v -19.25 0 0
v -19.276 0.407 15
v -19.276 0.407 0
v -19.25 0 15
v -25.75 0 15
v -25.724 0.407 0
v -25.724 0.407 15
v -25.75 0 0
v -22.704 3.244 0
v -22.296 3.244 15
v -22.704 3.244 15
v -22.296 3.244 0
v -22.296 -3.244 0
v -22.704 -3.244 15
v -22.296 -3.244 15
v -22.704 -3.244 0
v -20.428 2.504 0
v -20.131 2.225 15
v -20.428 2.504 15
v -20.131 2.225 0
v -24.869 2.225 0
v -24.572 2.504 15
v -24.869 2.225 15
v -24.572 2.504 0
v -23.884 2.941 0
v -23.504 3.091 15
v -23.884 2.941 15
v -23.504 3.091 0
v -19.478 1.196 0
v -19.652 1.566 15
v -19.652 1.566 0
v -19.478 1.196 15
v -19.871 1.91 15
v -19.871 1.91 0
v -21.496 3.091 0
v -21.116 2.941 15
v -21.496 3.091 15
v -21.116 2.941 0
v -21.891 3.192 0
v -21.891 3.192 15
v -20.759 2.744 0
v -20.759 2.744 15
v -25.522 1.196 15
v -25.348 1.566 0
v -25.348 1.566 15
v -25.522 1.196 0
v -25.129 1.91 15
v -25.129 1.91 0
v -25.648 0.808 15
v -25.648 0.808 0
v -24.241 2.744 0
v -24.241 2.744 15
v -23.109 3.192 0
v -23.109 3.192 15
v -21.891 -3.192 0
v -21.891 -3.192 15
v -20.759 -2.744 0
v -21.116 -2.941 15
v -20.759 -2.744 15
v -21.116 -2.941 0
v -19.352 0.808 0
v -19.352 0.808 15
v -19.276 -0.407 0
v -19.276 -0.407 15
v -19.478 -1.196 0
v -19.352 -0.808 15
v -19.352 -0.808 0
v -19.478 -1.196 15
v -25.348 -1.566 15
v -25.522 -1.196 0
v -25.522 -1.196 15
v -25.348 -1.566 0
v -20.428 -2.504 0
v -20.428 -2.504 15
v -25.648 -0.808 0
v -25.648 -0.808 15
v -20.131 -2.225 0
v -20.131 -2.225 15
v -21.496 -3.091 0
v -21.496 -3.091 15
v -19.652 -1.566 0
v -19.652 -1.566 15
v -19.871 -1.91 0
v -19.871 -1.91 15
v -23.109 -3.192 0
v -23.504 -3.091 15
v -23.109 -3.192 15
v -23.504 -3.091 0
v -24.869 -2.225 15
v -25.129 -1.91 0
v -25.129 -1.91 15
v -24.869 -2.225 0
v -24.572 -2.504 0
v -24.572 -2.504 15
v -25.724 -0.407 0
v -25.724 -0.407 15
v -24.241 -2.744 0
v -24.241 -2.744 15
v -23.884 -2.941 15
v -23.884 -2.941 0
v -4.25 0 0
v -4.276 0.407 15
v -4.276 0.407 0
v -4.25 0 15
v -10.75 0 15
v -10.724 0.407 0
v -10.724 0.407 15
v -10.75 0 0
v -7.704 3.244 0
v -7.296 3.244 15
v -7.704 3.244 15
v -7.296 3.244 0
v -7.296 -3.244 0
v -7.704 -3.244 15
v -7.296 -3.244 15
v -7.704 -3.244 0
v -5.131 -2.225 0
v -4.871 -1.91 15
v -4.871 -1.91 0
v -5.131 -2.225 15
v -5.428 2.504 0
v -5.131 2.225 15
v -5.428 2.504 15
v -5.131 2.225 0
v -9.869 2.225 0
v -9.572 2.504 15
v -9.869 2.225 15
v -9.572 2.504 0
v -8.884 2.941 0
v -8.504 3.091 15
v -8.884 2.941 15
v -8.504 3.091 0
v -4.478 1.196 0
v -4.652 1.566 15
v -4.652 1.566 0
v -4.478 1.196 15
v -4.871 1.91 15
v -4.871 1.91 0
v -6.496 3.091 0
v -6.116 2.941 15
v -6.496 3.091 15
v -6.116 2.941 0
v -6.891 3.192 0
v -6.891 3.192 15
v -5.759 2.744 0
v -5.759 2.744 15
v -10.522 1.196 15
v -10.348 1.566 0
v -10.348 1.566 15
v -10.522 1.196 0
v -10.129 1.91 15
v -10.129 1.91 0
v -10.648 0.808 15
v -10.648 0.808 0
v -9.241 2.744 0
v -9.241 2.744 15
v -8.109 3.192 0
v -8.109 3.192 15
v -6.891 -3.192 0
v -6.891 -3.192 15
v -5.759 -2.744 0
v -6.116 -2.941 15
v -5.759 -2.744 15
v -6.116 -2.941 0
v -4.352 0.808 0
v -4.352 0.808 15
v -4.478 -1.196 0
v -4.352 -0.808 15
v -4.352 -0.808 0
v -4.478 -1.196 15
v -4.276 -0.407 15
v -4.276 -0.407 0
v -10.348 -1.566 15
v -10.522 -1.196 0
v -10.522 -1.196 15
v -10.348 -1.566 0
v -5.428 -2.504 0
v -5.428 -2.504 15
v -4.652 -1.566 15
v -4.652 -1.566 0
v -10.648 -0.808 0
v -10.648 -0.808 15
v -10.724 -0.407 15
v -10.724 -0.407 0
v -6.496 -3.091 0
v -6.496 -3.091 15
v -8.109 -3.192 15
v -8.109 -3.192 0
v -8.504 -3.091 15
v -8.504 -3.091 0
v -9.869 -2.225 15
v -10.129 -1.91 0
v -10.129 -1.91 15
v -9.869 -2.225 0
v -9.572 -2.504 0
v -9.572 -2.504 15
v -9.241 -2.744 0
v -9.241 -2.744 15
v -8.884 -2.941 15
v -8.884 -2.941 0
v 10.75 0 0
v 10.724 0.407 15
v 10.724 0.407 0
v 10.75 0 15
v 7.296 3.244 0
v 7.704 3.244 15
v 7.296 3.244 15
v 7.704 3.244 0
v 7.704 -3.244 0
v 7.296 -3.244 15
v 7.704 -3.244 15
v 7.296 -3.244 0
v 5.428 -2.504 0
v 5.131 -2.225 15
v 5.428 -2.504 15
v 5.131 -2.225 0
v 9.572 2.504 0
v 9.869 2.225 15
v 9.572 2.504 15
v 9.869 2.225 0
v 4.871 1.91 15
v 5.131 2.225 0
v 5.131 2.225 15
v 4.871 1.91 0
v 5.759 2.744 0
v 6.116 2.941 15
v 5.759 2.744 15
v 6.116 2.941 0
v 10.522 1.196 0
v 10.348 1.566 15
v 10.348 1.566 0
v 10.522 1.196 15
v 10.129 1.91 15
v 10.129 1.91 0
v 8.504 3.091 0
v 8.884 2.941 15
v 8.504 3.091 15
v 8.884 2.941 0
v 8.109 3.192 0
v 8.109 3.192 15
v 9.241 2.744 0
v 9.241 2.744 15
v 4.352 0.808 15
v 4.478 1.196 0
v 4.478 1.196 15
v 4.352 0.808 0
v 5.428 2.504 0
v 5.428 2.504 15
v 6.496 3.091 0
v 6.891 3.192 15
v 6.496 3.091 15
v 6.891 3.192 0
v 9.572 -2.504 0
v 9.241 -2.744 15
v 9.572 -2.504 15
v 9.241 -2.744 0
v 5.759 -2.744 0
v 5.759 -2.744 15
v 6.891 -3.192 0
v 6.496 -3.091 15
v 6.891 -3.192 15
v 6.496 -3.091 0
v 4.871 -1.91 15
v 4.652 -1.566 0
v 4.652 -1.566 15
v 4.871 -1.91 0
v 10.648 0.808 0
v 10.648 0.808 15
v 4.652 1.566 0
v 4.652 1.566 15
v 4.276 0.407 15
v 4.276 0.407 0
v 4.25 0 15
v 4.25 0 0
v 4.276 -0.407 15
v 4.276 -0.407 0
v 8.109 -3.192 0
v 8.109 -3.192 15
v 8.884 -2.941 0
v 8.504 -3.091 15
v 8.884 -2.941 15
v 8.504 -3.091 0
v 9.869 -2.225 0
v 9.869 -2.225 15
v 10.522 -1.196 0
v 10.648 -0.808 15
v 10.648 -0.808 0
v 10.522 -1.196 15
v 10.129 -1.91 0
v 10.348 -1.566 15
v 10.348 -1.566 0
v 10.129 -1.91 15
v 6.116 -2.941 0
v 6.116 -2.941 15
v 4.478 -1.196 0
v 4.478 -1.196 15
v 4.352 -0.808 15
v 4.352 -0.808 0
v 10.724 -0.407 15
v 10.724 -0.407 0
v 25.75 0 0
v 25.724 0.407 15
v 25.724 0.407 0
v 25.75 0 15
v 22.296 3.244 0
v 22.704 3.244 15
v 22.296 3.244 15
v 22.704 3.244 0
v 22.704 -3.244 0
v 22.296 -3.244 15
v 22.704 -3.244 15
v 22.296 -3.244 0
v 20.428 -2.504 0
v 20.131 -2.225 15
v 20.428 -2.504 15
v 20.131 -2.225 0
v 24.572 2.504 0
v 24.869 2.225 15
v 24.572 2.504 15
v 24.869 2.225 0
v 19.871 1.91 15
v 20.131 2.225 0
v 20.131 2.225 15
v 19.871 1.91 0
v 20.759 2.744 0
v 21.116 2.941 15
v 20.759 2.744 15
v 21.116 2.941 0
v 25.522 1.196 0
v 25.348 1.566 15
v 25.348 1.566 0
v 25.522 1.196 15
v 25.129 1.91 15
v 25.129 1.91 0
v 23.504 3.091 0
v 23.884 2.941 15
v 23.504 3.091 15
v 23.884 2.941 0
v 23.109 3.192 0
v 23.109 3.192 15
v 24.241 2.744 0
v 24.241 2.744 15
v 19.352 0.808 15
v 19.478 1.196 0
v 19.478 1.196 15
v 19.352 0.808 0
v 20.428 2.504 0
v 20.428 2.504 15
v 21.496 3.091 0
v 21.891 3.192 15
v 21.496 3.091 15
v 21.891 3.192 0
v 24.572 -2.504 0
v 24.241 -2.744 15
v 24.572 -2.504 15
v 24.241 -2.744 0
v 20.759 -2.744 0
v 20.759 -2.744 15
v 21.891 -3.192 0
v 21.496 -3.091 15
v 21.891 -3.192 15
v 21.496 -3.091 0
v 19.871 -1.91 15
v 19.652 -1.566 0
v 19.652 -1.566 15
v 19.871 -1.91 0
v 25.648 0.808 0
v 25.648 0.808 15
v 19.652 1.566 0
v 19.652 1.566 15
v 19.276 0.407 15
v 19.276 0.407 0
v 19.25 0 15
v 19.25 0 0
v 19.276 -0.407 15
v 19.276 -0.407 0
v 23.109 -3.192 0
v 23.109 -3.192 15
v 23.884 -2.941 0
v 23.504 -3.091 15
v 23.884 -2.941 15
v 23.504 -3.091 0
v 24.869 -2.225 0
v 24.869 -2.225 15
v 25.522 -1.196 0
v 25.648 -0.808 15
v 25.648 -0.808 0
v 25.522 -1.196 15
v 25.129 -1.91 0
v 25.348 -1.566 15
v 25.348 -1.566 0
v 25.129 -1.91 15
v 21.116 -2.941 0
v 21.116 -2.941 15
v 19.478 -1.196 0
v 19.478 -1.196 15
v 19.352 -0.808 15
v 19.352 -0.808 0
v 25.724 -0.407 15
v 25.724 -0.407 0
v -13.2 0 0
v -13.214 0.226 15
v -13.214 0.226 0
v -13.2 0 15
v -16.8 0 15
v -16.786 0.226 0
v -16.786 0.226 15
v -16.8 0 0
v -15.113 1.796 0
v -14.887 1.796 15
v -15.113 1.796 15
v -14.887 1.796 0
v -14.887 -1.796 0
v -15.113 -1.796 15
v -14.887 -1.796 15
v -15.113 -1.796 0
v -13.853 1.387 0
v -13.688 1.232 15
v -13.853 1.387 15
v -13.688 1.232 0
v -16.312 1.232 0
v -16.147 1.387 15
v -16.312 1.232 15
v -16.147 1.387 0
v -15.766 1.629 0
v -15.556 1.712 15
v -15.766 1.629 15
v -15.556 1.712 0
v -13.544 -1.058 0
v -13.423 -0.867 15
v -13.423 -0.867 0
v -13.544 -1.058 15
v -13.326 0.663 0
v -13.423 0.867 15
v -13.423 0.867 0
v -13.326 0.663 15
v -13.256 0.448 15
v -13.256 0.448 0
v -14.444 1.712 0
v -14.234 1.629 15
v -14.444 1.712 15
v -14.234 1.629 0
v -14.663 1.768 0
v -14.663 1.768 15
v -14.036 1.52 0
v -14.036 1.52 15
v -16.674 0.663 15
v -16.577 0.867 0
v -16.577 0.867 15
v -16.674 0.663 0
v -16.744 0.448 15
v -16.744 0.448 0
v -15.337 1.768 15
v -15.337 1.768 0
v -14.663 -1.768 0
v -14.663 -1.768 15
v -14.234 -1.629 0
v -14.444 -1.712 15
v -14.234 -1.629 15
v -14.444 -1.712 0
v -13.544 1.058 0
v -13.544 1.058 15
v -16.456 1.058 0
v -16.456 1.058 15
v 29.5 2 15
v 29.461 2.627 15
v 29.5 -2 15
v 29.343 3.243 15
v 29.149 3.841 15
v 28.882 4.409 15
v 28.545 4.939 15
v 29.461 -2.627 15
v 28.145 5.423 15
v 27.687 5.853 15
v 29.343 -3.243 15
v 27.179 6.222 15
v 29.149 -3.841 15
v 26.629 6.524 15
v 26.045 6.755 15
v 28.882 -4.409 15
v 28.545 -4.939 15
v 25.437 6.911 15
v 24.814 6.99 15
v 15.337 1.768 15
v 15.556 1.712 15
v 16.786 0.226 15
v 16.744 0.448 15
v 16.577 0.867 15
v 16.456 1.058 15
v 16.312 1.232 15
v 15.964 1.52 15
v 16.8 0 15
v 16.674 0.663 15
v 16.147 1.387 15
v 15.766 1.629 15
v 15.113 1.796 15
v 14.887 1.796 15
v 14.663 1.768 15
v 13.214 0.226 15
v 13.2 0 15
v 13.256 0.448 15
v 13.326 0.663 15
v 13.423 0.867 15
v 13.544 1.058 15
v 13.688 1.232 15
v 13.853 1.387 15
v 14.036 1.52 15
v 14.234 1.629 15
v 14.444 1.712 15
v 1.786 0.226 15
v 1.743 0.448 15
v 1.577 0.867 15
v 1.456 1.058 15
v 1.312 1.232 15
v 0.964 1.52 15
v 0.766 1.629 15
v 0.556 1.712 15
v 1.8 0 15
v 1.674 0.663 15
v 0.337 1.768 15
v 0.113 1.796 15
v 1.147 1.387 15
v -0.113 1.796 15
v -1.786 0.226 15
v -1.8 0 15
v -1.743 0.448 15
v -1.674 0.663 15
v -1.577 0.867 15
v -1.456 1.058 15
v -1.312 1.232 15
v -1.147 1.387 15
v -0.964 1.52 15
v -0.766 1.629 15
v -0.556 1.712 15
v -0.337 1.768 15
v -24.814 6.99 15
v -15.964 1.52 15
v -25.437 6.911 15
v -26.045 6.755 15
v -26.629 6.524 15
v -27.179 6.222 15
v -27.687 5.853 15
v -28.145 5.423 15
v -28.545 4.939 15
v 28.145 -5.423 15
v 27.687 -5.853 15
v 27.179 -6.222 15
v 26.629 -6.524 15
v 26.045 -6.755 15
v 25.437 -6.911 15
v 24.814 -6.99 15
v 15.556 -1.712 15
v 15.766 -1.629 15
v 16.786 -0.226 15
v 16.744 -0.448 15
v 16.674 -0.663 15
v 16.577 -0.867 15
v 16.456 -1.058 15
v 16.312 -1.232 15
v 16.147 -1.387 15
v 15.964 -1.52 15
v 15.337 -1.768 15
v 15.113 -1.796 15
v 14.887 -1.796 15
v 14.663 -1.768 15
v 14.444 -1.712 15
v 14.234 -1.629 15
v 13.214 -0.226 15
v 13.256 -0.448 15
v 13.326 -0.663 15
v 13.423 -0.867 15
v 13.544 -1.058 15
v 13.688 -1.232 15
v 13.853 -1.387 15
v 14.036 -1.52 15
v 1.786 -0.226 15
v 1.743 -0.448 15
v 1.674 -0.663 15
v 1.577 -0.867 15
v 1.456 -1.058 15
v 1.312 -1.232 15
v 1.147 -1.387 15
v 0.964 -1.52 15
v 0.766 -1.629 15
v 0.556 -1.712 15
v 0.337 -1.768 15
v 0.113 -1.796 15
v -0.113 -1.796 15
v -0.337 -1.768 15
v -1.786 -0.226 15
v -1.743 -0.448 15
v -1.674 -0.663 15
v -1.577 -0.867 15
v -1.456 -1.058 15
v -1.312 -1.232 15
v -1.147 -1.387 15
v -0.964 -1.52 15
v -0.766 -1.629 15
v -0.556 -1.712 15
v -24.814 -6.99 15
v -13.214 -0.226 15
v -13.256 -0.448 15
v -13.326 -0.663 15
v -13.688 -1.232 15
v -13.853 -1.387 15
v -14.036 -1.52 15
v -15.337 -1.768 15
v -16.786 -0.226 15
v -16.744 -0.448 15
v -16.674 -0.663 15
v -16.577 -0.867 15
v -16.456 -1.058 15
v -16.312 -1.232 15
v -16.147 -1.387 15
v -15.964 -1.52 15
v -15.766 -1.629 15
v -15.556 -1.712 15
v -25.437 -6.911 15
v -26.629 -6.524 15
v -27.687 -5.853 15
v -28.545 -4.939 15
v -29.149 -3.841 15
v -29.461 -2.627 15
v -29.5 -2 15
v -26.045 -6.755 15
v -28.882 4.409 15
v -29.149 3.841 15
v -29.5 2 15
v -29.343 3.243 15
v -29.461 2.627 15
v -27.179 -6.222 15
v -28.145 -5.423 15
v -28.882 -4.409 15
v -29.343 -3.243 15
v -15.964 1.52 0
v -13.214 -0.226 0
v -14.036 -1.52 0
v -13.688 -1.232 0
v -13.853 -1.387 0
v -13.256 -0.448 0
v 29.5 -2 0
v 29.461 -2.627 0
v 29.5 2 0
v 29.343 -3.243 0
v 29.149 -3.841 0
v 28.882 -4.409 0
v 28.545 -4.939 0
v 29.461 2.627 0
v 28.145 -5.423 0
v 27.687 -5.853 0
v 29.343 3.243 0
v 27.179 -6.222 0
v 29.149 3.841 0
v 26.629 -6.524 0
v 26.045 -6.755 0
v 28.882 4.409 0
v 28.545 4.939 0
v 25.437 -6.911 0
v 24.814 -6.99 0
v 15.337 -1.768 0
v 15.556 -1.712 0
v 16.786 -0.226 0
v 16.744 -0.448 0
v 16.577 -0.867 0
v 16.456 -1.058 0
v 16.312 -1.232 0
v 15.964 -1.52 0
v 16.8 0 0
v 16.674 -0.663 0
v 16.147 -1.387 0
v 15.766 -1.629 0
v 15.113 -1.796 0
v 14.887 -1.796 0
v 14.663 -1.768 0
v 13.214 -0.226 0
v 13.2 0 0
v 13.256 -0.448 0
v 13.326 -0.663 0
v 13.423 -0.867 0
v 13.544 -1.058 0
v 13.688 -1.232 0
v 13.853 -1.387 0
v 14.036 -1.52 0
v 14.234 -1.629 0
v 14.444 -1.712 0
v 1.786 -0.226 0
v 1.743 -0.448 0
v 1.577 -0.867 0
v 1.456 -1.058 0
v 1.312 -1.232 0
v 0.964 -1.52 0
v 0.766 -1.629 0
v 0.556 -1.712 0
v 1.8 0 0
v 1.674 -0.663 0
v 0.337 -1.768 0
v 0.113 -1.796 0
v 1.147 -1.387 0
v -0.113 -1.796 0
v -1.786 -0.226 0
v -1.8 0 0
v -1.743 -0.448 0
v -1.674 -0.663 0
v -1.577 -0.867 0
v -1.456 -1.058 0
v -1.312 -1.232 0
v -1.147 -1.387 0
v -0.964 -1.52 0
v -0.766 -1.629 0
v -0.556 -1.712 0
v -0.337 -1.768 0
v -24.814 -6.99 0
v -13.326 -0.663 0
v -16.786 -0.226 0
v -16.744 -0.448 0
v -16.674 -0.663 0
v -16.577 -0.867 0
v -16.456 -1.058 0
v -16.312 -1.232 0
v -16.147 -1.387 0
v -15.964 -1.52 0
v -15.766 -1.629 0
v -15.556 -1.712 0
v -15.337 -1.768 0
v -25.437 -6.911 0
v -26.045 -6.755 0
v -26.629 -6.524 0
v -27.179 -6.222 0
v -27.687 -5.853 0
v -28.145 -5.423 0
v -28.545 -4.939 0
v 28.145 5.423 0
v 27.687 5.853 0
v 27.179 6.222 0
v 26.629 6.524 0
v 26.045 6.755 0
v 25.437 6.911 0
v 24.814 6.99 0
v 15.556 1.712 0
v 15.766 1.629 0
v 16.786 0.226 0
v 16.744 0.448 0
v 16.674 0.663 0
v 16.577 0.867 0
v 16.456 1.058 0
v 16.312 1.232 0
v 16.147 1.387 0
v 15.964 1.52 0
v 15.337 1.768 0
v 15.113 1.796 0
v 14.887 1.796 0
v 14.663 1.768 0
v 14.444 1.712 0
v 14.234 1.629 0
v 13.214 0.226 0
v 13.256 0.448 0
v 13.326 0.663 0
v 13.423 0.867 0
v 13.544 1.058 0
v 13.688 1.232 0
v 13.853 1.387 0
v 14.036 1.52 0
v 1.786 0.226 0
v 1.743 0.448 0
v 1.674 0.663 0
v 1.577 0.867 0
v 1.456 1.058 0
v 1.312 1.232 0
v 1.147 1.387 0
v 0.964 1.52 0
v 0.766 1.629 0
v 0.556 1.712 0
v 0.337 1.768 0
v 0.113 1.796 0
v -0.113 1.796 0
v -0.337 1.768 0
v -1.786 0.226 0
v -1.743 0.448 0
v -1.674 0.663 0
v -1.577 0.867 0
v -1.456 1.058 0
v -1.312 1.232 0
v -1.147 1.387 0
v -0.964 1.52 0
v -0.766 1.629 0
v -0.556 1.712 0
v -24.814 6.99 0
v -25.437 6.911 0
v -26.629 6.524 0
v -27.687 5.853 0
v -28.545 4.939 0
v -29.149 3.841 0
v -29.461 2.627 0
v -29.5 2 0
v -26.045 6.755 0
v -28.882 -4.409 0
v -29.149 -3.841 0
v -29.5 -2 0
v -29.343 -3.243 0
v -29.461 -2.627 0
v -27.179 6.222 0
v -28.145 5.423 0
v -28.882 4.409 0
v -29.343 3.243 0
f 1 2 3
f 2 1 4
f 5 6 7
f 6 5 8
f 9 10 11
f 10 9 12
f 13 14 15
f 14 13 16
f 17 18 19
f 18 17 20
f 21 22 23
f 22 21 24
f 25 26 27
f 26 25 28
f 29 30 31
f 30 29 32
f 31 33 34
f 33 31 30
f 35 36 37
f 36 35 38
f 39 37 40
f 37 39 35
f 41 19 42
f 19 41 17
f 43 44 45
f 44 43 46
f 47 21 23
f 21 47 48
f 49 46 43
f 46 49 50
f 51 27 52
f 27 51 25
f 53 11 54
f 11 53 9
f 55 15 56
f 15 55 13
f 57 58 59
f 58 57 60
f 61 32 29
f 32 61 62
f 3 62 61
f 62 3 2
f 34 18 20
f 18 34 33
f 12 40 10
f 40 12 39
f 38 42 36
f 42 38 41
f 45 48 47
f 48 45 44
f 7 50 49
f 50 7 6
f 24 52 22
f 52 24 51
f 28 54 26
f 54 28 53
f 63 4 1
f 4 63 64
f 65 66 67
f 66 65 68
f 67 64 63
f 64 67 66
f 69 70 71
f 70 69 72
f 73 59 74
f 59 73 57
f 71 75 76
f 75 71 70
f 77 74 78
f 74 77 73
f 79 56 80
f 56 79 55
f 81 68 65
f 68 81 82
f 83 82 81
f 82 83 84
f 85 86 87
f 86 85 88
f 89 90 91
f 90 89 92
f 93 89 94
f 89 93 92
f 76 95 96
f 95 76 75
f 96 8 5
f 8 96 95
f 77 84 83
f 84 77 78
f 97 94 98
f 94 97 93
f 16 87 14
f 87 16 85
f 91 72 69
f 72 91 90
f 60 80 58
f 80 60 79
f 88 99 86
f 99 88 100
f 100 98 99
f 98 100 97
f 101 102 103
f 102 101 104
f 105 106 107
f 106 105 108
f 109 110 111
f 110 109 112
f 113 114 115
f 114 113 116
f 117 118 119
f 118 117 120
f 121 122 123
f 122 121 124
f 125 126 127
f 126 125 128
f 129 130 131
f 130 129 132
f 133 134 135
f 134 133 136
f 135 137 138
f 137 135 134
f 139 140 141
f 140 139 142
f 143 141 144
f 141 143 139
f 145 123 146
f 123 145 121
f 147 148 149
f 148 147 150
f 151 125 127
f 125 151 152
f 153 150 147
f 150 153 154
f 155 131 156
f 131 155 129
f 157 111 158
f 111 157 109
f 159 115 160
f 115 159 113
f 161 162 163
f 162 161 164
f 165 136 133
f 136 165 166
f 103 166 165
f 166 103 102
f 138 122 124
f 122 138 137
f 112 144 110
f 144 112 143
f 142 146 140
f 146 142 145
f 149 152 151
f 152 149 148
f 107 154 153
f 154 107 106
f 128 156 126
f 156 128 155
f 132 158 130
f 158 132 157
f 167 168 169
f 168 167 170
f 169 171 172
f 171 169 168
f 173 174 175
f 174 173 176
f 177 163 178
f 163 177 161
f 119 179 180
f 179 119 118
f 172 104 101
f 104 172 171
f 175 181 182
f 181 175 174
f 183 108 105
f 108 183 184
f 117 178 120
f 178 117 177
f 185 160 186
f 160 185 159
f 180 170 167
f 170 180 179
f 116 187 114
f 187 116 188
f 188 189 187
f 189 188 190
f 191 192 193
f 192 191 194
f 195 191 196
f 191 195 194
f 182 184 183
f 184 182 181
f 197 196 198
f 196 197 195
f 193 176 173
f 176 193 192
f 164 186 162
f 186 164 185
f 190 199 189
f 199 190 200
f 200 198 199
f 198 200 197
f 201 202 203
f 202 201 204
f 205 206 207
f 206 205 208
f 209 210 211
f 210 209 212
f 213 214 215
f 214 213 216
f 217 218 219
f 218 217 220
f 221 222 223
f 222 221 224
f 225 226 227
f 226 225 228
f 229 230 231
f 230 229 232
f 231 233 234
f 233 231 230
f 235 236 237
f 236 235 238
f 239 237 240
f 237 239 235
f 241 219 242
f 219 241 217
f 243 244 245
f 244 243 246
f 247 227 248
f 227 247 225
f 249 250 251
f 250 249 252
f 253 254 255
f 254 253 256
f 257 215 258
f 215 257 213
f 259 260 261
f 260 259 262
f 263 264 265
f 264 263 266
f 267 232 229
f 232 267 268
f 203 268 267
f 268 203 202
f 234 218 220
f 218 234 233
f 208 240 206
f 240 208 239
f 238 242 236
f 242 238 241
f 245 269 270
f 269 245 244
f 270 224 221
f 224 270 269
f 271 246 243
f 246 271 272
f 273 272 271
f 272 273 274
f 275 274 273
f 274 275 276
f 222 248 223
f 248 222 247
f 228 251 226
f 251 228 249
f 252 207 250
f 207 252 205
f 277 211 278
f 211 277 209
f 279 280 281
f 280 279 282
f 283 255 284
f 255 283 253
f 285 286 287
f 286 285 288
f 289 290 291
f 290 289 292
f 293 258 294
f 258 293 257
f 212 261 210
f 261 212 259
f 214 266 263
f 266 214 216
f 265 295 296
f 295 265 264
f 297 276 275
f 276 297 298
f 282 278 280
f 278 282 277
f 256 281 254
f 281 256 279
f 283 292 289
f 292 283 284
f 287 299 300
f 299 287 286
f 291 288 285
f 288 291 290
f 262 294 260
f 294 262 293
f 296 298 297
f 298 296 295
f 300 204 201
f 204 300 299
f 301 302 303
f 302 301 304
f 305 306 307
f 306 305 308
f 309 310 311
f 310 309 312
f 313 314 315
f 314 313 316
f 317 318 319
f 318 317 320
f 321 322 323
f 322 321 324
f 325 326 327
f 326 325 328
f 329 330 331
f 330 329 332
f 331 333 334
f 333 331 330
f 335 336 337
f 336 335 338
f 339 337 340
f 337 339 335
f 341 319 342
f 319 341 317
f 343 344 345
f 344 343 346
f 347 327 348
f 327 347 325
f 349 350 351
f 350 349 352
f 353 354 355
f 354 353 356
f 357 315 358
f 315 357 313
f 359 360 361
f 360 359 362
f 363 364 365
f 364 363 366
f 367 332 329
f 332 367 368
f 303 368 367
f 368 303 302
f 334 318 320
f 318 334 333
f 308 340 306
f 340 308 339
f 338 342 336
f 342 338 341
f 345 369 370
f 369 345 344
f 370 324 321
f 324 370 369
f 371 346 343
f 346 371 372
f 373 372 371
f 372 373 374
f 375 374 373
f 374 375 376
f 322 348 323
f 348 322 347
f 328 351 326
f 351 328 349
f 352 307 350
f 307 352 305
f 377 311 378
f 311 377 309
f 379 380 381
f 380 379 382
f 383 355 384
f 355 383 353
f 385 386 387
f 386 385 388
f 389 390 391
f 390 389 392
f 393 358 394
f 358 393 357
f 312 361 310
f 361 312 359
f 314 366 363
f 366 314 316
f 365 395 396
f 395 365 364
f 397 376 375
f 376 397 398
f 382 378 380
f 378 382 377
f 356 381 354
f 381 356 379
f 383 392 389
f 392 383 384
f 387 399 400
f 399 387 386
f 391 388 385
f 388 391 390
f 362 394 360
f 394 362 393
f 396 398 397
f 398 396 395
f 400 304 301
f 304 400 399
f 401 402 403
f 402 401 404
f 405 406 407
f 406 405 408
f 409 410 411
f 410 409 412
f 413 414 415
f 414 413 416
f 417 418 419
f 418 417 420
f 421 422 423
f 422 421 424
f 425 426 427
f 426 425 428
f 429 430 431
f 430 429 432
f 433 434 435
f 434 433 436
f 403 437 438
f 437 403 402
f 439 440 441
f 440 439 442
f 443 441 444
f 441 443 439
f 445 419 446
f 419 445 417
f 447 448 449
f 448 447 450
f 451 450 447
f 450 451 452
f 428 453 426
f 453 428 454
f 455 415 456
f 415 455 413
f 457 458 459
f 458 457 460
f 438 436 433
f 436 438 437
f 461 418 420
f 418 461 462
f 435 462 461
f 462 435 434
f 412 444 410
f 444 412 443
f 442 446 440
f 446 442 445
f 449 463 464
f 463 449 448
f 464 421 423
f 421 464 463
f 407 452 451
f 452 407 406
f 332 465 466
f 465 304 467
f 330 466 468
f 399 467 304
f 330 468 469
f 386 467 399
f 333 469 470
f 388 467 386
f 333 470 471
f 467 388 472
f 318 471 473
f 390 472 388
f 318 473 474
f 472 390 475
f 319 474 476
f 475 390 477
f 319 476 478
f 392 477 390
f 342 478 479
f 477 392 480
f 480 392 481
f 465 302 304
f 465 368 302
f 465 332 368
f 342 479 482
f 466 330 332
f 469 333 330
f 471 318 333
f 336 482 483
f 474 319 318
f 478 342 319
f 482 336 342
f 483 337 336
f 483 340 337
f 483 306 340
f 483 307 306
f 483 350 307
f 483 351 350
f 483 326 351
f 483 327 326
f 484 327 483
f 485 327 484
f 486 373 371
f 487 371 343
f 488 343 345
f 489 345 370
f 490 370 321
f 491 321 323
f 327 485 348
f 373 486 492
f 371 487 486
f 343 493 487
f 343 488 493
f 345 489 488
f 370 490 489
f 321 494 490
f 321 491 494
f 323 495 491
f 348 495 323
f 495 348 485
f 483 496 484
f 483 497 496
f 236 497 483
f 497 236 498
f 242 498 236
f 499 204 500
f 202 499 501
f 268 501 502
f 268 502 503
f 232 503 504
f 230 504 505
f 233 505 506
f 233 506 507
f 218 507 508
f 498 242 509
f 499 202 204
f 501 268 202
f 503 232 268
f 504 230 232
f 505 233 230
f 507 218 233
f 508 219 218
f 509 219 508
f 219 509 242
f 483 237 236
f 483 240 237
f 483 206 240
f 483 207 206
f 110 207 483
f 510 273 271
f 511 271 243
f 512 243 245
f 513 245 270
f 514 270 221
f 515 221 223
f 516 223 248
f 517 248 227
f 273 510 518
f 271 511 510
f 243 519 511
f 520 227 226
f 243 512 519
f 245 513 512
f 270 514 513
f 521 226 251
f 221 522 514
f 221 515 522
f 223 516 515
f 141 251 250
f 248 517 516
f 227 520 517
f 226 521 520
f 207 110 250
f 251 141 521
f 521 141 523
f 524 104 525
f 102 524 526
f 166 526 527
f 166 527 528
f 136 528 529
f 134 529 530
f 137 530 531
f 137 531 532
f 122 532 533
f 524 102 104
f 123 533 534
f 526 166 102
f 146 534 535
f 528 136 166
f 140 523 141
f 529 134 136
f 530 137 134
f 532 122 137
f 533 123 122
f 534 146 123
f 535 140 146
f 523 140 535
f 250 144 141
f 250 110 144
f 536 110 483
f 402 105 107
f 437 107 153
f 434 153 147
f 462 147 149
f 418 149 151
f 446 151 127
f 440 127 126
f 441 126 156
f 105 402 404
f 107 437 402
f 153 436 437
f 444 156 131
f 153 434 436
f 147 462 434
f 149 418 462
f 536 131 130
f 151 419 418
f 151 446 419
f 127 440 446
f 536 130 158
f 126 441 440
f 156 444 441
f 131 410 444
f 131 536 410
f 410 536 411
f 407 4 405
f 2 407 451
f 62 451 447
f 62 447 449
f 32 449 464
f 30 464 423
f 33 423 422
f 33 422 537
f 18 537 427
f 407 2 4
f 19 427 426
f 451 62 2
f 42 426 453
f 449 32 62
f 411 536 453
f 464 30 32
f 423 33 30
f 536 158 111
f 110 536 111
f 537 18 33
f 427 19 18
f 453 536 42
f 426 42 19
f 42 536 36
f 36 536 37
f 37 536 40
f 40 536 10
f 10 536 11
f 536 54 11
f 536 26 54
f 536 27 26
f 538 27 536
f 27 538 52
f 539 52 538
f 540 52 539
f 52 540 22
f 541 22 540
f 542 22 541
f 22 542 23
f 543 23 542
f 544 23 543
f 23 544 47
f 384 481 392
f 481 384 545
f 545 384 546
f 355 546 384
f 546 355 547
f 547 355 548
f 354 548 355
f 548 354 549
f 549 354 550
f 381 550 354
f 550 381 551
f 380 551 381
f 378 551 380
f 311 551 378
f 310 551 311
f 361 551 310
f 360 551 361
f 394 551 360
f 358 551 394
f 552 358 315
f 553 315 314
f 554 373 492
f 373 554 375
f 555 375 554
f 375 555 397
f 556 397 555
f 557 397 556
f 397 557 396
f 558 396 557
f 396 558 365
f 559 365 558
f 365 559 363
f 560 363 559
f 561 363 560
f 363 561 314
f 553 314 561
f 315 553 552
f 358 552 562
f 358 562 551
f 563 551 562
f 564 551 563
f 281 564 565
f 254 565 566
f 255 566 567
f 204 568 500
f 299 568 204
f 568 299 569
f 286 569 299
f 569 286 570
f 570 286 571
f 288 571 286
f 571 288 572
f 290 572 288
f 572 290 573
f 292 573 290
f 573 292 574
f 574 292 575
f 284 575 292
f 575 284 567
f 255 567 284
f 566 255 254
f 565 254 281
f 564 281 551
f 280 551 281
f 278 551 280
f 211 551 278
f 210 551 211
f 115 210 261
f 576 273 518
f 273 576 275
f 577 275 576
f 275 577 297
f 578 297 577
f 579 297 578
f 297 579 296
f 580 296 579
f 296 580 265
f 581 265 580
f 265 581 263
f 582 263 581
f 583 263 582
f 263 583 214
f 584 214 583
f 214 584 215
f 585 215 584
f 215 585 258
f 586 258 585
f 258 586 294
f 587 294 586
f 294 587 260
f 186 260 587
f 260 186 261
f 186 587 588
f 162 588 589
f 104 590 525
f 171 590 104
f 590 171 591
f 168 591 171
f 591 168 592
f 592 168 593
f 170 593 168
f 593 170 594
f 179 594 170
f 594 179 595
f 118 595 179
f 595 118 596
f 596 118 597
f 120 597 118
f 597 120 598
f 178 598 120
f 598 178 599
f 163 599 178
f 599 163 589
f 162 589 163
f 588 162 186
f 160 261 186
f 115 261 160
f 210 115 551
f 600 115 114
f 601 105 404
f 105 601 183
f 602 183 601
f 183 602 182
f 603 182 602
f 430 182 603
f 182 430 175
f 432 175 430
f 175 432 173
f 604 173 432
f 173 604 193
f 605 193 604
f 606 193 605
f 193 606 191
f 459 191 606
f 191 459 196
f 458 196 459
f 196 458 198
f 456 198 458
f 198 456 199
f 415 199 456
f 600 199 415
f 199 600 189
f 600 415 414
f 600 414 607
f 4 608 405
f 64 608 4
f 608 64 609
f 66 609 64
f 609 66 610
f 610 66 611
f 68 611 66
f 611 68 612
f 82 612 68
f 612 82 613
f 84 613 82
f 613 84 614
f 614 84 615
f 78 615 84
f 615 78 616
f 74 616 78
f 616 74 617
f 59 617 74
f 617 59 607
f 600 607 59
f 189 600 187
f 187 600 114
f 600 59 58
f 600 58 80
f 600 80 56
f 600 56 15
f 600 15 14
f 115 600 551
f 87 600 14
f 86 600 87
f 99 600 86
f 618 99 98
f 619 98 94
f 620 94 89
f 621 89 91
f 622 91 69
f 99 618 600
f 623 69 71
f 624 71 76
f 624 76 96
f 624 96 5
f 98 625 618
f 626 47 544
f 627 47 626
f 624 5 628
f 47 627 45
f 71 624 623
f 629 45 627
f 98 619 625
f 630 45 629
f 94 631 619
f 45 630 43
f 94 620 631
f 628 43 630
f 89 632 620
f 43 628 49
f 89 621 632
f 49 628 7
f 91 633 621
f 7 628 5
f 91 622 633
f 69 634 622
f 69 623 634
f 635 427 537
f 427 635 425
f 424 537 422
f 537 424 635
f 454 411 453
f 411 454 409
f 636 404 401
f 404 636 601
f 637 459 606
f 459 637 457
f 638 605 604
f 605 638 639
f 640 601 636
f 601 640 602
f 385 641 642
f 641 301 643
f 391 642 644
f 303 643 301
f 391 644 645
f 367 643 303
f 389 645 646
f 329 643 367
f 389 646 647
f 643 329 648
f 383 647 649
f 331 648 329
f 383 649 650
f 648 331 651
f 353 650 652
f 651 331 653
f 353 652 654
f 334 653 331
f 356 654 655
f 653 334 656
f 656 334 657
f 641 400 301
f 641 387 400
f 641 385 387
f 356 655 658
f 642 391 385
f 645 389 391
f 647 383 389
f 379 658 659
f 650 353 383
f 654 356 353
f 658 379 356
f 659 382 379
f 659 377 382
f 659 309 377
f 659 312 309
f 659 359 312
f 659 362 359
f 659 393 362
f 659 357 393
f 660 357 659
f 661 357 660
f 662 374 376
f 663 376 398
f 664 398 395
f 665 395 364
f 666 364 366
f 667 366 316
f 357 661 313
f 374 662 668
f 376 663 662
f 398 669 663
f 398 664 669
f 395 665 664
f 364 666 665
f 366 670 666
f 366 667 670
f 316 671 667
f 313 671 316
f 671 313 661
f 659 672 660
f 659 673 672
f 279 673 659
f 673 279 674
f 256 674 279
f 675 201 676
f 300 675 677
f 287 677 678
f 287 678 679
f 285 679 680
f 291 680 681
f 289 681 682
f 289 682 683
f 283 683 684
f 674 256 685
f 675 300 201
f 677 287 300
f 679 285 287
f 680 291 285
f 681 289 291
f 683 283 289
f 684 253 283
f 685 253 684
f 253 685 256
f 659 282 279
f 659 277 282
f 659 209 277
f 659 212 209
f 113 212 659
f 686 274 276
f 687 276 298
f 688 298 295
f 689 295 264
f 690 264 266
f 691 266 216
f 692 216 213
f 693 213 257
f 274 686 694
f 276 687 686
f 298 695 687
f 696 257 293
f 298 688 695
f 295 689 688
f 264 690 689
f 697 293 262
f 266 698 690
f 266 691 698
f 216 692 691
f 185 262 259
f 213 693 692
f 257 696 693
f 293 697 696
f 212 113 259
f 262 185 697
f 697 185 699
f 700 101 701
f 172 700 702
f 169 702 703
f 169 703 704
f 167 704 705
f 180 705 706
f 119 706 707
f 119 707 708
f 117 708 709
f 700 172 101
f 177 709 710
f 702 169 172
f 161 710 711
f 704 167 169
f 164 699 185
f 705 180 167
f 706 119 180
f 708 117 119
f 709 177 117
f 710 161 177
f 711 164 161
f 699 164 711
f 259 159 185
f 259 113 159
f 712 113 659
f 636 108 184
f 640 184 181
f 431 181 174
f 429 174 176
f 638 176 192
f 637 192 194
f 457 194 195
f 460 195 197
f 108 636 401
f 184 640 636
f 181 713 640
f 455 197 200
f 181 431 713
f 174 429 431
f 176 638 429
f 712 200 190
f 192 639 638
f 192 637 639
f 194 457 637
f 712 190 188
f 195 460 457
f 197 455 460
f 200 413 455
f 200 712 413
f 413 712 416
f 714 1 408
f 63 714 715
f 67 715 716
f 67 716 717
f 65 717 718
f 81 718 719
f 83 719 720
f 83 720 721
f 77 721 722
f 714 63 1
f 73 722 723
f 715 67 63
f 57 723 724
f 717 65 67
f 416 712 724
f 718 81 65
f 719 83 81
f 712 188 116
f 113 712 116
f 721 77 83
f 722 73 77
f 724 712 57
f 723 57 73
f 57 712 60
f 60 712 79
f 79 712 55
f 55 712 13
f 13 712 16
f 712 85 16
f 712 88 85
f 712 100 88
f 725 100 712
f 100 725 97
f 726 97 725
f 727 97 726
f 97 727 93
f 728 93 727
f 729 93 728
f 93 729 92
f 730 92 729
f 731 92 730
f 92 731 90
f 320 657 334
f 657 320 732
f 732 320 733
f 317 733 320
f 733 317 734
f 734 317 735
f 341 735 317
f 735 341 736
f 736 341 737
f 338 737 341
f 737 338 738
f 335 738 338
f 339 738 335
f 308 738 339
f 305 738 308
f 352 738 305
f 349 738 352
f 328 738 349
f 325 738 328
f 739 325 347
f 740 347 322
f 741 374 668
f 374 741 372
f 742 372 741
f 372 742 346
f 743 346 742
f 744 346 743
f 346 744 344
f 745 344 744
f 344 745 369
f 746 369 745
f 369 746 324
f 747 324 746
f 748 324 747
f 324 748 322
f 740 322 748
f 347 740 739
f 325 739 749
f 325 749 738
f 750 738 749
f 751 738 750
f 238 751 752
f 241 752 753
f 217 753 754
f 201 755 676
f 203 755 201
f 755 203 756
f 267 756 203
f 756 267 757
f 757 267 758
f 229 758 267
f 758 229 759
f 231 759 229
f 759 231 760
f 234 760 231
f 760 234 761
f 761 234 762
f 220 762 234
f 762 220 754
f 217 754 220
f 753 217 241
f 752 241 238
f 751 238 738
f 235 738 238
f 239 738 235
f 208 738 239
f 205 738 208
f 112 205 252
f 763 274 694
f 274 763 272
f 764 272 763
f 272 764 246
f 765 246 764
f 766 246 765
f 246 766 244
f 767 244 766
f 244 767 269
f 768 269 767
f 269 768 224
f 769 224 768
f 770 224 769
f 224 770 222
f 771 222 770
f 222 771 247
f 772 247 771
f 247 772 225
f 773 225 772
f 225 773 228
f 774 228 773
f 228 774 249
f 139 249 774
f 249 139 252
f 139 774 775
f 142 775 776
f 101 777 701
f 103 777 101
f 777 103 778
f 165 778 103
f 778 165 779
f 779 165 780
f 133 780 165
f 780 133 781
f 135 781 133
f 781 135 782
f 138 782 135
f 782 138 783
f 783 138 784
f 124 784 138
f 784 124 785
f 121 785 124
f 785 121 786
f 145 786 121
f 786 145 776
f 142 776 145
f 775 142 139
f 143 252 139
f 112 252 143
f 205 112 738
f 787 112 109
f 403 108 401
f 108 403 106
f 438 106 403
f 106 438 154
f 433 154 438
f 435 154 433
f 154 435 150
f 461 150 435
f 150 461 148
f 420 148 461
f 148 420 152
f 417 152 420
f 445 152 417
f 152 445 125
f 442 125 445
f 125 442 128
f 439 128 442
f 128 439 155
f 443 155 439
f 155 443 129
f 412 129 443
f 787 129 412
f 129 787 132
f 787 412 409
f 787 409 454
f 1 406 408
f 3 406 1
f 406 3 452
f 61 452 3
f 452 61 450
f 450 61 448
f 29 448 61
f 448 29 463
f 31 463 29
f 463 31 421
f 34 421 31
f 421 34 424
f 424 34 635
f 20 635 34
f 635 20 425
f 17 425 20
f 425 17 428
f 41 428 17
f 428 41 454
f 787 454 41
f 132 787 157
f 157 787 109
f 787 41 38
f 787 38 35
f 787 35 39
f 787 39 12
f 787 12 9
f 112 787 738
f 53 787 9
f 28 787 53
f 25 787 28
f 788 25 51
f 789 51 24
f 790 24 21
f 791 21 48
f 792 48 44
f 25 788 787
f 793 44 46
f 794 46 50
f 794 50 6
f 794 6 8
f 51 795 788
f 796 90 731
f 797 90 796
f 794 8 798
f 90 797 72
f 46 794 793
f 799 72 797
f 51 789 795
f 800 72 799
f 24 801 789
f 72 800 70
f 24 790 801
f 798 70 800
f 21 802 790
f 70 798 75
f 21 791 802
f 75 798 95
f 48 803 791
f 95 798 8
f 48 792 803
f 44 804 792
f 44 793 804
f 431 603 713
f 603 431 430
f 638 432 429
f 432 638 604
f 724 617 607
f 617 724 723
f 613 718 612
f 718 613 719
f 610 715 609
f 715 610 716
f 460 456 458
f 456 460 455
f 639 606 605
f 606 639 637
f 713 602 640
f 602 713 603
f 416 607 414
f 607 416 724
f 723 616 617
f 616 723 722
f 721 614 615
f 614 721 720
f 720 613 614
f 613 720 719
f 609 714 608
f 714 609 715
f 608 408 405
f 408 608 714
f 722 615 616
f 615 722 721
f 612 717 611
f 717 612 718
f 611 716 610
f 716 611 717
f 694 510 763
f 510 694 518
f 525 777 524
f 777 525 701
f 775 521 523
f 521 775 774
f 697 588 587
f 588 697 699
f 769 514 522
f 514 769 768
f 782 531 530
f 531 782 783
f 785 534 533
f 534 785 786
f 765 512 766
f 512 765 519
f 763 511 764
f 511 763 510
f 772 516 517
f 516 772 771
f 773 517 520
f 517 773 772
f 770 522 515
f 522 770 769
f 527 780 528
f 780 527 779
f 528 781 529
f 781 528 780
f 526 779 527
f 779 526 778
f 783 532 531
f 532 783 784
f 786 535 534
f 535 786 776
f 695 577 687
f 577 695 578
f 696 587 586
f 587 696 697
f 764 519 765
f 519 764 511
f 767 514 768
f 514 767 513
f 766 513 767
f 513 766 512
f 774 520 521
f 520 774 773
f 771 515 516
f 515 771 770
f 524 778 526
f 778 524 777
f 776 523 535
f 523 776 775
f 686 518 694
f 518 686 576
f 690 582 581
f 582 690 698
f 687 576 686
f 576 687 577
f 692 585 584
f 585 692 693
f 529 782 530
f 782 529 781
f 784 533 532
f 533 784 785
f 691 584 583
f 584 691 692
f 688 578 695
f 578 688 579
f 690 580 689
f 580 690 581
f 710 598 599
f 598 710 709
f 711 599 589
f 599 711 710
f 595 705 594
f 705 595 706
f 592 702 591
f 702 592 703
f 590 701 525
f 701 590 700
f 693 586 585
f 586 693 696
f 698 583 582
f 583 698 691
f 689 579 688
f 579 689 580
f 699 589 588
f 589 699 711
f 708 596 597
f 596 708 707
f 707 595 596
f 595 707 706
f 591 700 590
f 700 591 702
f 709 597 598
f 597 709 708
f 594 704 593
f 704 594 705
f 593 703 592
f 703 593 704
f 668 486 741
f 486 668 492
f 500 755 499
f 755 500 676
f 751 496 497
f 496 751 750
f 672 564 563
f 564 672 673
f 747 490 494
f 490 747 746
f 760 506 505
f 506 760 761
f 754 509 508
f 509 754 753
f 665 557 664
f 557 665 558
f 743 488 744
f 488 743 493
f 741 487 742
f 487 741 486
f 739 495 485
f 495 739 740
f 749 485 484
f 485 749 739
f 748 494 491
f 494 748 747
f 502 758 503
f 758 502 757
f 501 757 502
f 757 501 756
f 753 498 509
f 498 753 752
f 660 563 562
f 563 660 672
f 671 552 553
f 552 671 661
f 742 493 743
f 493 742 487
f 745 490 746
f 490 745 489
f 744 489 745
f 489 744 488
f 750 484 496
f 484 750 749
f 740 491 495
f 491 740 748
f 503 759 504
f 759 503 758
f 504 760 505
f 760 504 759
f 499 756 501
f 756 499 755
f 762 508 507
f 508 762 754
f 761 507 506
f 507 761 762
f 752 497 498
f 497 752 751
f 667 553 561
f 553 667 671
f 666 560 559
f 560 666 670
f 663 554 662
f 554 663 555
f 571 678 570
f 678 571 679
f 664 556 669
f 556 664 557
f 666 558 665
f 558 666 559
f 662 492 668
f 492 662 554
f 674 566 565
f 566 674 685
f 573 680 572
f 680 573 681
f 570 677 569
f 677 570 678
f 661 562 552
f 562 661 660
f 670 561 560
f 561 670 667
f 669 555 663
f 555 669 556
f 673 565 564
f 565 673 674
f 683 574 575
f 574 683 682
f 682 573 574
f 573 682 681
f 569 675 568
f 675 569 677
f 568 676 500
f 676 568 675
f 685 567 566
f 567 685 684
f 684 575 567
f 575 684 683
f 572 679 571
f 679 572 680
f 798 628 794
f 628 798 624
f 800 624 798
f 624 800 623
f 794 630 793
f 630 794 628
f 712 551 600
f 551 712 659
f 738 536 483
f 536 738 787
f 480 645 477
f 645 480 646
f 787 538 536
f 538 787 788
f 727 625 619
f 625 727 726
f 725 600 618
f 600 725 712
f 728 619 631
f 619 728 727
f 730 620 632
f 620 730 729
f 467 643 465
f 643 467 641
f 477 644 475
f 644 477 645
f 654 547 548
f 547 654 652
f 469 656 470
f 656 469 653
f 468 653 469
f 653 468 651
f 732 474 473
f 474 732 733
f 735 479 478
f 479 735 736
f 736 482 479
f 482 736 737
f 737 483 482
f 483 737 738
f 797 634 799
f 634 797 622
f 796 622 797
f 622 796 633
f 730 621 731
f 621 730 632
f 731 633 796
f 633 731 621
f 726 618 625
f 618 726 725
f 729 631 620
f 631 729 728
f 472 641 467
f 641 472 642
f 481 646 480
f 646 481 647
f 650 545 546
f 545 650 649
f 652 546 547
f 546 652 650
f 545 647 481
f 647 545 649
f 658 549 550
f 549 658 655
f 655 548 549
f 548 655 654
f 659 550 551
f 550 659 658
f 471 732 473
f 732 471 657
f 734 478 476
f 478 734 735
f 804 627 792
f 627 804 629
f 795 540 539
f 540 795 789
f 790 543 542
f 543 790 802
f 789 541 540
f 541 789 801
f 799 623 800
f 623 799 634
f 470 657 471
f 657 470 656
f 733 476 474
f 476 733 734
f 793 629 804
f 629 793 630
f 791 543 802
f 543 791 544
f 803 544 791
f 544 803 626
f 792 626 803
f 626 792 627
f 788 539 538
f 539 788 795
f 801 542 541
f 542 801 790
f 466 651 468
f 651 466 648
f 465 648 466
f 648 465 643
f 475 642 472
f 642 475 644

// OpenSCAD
$fn = 50;


difference() {
	union() {
		hull() {
			translate(v = [-24.5000000000, 2.0000000000, 0]) {
				cylinder(h = 15, r = 5);
			}
			translate(v = [24.5000000000, 2.0000000000, 0]) {
				cylinder(h = 15, r = 5);
			}
			translate(v = [-24.5000000000, -2.0000000000, 0]) {
				cylinder(h = 15, r = 5);
			}
			translate(v = [24.5000000000, -2.0000000000, 0]) {
				cylinder(h = 15, r = 5);
			}
		}
	}
	union() {
		translate(v = [-22.5000000000, 0.0000000000, 0]) {
			translate(v = [0, 0, -100]) {
				cylinder(h = 200, r = 3.2500000000);
			}
		}
		translate(v = [-7.5000000000, 0.0000000000, 0]) {
			translate(v = [0, 0, -100]) {
				cylinder(h = 200, r = 3.2500000000);
			}
		}
		translate(v = [7.5000000000, 0.0000000000, 0]) {
			translate(v = [0, 0, -100]) {
				cylinder(h = 200, r = 3.2500000000);
			}
		}
		translate(v = [22.5000000000, 0.0000000000, 0]) {
			translate(v = [0, 0, -100]) {
				cylinder(h = 200, r = 3.2500000000);
			}
		}
		translate(v = [-22.5000000000, 0.0000000000, 0]) {
			translate(v = [0, 0, -100]) {
				cylinder(h = 200, r = 1.8000000000);
			}
		}
		translate(v = [-15.0000000000, 0.0000000000, 0]) {
			translate(v = [0, 0, -100]) {
				cylinder(h = 200, r = 1.8000000000);
			}
		}
		translate(v = [-7.5000000000, 0.0000000000, 0]) {
			translate(v = [0, 0, -100]) {
				cylinder(h = 200, r = 1.8000000000);
			}
		}
		translate(v = [0, 0, -100]) {
			cylinder(h = 200, r = 1.8000000000);
		}
		translate(v = [7.5000000000, 0.0000000000, 0]) {
			translate(v = [0, 0, -100]) {
				cylinder(h = 200, r = 1.8000000000);
			}
		}
		translate(v = [15.0000000000, 0.0000000000, 0]) {
			translate(v = [0, 0, -100]) {
				cylinder(h = 200, r = 1.8000000000);
			}
		}
		translate(v = [22.5000000000, 0.0000000000, 0]) {
			translate(v = [0, 0, -100]) {
				cylinder(h = 200, r = 1.8000000000);
			}
		}
	}
}
